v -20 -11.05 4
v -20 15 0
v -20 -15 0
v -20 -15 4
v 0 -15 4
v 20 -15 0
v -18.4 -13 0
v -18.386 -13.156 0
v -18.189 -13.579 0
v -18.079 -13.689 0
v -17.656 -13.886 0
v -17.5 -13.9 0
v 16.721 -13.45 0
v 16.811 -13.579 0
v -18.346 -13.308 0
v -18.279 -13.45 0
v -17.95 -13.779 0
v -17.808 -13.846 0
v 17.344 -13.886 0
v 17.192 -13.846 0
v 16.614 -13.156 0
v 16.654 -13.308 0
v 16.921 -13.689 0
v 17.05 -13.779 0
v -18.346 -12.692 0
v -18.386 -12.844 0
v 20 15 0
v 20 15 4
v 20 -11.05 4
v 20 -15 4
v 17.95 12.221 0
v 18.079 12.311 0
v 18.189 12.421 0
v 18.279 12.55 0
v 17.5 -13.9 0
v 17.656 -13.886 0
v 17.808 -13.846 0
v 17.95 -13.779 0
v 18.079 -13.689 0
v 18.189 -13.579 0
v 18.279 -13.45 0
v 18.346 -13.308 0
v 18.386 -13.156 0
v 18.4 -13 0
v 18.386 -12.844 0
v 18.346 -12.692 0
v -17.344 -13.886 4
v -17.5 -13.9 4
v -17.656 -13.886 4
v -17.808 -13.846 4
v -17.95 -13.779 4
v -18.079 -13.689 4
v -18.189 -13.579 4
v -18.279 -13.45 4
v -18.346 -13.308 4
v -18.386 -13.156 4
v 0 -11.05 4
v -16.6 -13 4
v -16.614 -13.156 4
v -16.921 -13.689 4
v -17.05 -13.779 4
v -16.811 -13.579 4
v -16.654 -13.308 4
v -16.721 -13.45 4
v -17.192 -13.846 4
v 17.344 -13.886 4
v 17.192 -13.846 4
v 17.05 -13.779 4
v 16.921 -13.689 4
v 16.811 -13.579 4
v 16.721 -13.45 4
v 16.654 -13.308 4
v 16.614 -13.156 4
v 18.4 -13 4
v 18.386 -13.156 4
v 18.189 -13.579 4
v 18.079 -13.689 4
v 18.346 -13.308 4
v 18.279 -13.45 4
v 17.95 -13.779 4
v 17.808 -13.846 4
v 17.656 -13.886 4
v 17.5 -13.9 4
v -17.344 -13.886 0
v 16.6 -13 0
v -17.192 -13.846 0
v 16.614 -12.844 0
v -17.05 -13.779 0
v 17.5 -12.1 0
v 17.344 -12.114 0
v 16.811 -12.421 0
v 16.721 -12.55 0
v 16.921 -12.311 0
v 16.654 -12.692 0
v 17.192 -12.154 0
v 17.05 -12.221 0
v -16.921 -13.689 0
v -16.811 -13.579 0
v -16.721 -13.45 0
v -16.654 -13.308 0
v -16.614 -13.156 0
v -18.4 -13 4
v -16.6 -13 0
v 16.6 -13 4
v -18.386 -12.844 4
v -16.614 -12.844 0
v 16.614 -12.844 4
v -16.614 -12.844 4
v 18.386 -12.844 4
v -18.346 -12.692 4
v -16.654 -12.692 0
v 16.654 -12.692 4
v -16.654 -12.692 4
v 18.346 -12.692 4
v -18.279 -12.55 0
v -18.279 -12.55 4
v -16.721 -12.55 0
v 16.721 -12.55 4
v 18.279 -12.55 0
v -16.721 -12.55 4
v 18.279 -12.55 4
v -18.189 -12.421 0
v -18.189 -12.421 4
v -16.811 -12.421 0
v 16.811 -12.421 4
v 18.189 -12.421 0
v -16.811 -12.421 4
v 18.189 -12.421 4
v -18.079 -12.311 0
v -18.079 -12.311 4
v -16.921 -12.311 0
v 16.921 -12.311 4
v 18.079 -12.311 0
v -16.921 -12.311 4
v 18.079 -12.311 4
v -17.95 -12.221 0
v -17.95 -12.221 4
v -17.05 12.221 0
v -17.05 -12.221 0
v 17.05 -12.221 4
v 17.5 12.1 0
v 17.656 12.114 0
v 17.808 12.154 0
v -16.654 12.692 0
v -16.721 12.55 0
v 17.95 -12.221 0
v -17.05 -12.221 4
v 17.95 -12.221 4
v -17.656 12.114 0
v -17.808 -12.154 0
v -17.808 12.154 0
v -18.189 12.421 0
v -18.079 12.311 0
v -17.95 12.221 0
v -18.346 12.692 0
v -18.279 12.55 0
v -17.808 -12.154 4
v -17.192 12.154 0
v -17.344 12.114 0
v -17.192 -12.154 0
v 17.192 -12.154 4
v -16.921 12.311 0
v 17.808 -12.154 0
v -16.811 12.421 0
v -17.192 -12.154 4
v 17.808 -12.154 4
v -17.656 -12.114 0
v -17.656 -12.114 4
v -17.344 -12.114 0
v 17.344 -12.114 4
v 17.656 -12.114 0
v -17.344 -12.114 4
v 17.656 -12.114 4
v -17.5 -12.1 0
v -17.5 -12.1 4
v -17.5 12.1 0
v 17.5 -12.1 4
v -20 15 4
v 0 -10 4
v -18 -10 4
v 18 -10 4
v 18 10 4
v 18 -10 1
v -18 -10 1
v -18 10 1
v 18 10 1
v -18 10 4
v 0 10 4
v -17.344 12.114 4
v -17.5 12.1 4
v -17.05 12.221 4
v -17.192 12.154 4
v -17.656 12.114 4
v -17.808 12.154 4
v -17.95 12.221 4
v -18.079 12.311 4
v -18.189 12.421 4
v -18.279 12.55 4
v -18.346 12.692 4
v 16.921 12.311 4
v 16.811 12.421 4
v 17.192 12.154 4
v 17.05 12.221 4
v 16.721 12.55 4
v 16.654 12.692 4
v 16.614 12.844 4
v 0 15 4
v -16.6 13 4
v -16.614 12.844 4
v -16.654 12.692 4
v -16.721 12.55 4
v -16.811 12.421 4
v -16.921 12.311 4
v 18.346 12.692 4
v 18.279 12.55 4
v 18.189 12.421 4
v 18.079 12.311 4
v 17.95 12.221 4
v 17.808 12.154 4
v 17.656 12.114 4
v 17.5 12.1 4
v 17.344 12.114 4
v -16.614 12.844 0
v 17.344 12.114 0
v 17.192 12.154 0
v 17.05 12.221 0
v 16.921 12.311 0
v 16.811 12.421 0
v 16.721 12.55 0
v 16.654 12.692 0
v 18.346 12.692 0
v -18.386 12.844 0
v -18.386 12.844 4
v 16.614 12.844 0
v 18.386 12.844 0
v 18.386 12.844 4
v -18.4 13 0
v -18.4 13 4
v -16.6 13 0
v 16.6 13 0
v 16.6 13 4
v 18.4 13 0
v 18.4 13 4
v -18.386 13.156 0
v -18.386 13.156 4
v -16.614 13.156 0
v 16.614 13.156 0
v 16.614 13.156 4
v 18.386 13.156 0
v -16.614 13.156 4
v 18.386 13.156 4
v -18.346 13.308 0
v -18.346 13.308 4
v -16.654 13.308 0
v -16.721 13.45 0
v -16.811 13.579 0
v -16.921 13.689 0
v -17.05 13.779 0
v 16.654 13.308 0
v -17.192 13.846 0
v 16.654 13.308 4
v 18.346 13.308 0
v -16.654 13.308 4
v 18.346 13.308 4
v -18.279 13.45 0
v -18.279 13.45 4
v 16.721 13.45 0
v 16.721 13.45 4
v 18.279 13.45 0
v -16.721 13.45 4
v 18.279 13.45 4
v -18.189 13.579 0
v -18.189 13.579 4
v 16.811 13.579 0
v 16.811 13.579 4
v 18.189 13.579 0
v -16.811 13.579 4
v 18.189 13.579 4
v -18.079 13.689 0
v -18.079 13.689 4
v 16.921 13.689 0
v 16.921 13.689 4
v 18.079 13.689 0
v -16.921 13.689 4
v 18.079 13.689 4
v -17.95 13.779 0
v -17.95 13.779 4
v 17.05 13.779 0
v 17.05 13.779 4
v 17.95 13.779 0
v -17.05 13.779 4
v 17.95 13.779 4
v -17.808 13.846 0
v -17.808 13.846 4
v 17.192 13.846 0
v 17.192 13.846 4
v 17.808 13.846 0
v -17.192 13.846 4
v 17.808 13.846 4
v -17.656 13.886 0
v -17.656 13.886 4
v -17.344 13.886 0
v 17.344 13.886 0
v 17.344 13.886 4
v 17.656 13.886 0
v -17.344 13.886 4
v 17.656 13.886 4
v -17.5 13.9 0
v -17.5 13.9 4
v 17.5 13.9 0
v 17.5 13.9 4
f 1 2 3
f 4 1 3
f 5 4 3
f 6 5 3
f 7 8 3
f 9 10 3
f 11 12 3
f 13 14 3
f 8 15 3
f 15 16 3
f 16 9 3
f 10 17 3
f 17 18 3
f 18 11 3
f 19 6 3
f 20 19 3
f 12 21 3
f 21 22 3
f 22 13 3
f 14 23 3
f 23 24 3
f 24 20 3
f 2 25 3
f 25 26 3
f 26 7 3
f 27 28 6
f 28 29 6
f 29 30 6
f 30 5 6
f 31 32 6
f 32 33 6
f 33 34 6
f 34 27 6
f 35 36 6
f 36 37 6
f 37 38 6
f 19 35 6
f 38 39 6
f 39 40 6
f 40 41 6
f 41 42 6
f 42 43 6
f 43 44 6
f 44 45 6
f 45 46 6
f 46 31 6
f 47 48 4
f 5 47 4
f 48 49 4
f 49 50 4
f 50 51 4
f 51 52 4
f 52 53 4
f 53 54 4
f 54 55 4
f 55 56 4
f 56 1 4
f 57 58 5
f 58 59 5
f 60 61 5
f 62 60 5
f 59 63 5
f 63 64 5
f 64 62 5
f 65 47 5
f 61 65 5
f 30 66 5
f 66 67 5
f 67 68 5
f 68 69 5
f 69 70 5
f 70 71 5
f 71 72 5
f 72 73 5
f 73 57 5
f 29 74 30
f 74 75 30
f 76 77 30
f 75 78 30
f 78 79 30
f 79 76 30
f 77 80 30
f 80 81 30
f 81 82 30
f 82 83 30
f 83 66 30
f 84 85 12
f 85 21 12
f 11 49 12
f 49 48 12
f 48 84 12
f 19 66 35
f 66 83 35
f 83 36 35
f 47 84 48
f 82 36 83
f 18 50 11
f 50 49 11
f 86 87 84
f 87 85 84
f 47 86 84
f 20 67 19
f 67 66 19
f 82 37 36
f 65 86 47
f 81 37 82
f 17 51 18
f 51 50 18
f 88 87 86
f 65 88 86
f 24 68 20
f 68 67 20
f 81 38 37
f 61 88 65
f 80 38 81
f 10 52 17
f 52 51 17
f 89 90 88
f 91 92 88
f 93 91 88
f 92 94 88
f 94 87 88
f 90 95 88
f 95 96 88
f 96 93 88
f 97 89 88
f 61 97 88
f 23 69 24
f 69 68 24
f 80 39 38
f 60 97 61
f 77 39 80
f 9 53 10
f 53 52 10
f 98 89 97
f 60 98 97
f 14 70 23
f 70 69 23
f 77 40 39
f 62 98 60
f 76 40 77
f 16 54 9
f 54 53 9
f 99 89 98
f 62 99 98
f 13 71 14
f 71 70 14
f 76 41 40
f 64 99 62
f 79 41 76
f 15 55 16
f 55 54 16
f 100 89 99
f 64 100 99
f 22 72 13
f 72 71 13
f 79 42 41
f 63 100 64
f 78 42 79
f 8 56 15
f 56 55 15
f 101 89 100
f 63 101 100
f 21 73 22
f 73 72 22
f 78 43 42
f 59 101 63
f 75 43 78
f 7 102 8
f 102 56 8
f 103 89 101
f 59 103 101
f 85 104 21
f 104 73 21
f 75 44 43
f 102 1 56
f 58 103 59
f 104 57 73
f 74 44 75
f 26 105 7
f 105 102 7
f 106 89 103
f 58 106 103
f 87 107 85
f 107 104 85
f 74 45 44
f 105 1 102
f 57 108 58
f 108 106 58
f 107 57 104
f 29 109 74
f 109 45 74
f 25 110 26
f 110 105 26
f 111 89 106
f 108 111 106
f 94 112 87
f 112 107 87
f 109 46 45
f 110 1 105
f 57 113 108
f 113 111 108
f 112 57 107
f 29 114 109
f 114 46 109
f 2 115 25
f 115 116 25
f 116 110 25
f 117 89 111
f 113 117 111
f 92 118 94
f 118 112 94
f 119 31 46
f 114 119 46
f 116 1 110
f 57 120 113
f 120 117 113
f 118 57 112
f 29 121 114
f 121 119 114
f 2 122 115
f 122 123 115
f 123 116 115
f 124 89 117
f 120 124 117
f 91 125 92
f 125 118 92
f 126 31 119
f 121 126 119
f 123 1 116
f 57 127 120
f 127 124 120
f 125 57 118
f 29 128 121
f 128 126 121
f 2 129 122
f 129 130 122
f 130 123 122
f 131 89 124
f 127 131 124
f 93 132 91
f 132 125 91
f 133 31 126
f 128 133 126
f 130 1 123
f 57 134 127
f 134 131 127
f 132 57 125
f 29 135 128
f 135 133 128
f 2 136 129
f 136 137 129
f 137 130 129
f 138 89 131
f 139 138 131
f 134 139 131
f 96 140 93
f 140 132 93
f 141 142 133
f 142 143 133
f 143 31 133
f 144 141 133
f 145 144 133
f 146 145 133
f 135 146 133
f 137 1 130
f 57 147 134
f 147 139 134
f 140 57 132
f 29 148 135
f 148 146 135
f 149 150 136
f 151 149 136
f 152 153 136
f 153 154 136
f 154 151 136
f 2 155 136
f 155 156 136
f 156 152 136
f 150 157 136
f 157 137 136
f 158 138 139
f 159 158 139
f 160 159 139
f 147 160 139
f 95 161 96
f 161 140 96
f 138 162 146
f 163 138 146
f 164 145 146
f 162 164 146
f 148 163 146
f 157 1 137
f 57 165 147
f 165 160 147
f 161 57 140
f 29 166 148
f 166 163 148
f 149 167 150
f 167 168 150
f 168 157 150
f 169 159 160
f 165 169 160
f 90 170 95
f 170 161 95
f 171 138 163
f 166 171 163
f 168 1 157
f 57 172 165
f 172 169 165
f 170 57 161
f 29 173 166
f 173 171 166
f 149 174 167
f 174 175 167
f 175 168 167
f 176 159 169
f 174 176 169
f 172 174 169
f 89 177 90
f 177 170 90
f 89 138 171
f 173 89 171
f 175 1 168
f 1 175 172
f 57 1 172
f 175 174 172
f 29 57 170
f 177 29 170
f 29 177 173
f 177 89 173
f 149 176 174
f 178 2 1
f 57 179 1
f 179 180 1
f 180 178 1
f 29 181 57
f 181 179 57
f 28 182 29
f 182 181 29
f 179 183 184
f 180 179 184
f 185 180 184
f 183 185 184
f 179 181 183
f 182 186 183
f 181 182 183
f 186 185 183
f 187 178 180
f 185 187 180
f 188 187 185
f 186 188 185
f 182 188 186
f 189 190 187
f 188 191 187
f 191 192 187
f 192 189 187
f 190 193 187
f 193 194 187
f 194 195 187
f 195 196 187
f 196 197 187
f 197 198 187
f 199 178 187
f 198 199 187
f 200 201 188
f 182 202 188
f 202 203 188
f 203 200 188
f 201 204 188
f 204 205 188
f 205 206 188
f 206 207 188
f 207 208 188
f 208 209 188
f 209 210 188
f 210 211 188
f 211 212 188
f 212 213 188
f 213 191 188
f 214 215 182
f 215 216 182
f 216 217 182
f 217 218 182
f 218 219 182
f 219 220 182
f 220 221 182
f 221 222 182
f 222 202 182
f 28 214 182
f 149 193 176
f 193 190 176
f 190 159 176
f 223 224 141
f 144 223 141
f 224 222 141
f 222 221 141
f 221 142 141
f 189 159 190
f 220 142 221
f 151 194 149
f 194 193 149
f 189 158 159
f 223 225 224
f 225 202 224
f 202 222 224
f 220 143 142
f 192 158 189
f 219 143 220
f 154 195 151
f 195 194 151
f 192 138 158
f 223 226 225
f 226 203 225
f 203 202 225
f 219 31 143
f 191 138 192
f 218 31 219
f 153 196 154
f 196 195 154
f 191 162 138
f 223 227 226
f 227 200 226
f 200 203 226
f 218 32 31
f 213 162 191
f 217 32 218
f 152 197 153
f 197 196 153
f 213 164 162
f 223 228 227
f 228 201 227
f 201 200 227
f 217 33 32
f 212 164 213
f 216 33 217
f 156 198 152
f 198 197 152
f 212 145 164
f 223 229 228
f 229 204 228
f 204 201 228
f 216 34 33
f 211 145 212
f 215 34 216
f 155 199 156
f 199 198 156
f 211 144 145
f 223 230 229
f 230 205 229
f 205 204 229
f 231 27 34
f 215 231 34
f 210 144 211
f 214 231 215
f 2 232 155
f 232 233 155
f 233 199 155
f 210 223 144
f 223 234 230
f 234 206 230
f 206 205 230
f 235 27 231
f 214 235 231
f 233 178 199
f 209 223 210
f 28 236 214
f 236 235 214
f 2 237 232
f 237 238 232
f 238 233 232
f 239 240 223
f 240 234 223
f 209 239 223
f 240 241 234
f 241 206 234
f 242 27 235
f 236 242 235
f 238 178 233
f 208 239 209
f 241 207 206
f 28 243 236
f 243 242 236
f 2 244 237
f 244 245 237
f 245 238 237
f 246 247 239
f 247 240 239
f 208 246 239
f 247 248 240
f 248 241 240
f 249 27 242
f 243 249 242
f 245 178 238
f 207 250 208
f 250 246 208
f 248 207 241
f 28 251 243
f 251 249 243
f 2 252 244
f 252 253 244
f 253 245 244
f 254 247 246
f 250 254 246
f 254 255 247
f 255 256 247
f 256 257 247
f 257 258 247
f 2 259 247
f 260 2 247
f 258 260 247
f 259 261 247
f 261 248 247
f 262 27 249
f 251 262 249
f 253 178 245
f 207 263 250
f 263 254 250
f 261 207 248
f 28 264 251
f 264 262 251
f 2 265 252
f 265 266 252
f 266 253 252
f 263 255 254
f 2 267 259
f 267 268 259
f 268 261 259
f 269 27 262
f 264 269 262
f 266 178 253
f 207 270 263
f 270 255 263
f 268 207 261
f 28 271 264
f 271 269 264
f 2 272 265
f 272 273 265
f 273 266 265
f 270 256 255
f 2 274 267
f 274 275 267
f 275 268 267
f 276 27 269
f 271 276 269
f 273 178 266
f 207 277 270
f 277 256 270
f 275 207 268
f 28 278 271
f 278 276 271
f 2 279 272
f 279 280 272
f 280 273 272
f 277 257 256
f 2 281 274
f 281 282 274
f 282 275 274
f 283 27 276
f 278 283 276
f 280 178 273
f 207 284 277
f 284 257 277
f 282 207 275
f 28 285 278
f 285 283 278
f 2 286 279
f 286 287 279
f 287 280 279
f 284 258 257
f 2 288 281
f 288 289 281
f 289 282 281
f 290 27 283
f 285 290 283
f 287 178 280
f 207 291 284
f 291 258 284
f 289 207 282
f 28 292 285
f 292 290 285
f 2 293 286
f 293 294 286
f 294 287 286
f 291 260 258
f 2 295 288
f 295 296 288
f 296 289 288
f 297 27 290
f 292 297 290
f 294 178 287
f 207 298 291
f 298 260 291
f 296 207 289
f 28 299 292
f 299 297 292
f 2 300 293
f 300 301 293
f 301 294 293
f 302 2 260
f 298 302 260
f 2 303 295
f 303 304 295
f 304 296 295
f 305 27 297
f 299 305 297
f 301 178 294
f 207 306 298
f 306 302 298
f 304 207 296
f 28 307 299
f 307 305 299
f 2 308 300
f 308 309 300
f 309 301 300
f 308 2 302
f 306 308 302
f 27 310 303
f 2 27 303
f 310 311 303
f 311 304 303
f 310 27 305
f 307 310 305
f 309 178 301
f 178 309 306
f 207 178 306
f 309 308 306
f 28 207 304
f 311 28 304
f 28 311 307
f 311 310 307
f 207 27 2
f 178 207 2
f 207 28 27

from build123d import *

# Parameters (mm, degrees)
SKETCH1_W           = 40
SKETCH1_H           = 30
BOSS_EXTRUDE1_DEPTH = 4
CUT_EXTRUDE1_START  = 4
SKETCH2_W           = 36
SKETCH2_H           = 20
CUT_EXTRUDE1_DEPTH  = 3
CUT_EXTRUDE2_START  = 4
SKETCH3_R           = 0.9
CUT_EXTRUDE2_DEPTH  = 13


with BuildPart() as part:
    # Sketch1 → Boss-Extrude1 (new body)
    with BuildSketch(Plane.XY):
        Rectangle(SKETCH1_W, SKETCH1_H)
    extrude(amount=BOSS_EXTRUDE1_DEPTH)

    # Sketch2 → Cut-Extrude1 (cut)
    with BuildSketch(Plane.XY.offset(CUT_EXTRUDE1_START)):
        Rectangle(SKETCH2_W, SKETCH2_H)
    extrude(amount=-CUT_EXTRUDE1_DEPTH, mode=Mode.SUBTRACT)

    # Sketch3 → Cut-Extrude2 (cut)
    with BuildSketch(Plane.XY.offset(CUT_EXTRUDE2_START)):
        with Locations(Location((-17.5, 13, 0), (0, 0, 180))):
            Circle(SKETCH3_R)
        with Locations(Location((-17.5, -13, 0), (0, 0, 180))):
            Circle(SKETCH3_R)
        with Locations(Location((17.5, -13, 0), (0, 0, 180))):
            Circle(SKETCH3_R)
        with Locations(Location((17.5, 13, 0), (0, 0, 180))):
            Circle(SKETCH3_R)
    extrude(amount=-CUT_EXTRUDE2_DEPTH, mode=Mode.SUBTRACT)


solid = part.part
